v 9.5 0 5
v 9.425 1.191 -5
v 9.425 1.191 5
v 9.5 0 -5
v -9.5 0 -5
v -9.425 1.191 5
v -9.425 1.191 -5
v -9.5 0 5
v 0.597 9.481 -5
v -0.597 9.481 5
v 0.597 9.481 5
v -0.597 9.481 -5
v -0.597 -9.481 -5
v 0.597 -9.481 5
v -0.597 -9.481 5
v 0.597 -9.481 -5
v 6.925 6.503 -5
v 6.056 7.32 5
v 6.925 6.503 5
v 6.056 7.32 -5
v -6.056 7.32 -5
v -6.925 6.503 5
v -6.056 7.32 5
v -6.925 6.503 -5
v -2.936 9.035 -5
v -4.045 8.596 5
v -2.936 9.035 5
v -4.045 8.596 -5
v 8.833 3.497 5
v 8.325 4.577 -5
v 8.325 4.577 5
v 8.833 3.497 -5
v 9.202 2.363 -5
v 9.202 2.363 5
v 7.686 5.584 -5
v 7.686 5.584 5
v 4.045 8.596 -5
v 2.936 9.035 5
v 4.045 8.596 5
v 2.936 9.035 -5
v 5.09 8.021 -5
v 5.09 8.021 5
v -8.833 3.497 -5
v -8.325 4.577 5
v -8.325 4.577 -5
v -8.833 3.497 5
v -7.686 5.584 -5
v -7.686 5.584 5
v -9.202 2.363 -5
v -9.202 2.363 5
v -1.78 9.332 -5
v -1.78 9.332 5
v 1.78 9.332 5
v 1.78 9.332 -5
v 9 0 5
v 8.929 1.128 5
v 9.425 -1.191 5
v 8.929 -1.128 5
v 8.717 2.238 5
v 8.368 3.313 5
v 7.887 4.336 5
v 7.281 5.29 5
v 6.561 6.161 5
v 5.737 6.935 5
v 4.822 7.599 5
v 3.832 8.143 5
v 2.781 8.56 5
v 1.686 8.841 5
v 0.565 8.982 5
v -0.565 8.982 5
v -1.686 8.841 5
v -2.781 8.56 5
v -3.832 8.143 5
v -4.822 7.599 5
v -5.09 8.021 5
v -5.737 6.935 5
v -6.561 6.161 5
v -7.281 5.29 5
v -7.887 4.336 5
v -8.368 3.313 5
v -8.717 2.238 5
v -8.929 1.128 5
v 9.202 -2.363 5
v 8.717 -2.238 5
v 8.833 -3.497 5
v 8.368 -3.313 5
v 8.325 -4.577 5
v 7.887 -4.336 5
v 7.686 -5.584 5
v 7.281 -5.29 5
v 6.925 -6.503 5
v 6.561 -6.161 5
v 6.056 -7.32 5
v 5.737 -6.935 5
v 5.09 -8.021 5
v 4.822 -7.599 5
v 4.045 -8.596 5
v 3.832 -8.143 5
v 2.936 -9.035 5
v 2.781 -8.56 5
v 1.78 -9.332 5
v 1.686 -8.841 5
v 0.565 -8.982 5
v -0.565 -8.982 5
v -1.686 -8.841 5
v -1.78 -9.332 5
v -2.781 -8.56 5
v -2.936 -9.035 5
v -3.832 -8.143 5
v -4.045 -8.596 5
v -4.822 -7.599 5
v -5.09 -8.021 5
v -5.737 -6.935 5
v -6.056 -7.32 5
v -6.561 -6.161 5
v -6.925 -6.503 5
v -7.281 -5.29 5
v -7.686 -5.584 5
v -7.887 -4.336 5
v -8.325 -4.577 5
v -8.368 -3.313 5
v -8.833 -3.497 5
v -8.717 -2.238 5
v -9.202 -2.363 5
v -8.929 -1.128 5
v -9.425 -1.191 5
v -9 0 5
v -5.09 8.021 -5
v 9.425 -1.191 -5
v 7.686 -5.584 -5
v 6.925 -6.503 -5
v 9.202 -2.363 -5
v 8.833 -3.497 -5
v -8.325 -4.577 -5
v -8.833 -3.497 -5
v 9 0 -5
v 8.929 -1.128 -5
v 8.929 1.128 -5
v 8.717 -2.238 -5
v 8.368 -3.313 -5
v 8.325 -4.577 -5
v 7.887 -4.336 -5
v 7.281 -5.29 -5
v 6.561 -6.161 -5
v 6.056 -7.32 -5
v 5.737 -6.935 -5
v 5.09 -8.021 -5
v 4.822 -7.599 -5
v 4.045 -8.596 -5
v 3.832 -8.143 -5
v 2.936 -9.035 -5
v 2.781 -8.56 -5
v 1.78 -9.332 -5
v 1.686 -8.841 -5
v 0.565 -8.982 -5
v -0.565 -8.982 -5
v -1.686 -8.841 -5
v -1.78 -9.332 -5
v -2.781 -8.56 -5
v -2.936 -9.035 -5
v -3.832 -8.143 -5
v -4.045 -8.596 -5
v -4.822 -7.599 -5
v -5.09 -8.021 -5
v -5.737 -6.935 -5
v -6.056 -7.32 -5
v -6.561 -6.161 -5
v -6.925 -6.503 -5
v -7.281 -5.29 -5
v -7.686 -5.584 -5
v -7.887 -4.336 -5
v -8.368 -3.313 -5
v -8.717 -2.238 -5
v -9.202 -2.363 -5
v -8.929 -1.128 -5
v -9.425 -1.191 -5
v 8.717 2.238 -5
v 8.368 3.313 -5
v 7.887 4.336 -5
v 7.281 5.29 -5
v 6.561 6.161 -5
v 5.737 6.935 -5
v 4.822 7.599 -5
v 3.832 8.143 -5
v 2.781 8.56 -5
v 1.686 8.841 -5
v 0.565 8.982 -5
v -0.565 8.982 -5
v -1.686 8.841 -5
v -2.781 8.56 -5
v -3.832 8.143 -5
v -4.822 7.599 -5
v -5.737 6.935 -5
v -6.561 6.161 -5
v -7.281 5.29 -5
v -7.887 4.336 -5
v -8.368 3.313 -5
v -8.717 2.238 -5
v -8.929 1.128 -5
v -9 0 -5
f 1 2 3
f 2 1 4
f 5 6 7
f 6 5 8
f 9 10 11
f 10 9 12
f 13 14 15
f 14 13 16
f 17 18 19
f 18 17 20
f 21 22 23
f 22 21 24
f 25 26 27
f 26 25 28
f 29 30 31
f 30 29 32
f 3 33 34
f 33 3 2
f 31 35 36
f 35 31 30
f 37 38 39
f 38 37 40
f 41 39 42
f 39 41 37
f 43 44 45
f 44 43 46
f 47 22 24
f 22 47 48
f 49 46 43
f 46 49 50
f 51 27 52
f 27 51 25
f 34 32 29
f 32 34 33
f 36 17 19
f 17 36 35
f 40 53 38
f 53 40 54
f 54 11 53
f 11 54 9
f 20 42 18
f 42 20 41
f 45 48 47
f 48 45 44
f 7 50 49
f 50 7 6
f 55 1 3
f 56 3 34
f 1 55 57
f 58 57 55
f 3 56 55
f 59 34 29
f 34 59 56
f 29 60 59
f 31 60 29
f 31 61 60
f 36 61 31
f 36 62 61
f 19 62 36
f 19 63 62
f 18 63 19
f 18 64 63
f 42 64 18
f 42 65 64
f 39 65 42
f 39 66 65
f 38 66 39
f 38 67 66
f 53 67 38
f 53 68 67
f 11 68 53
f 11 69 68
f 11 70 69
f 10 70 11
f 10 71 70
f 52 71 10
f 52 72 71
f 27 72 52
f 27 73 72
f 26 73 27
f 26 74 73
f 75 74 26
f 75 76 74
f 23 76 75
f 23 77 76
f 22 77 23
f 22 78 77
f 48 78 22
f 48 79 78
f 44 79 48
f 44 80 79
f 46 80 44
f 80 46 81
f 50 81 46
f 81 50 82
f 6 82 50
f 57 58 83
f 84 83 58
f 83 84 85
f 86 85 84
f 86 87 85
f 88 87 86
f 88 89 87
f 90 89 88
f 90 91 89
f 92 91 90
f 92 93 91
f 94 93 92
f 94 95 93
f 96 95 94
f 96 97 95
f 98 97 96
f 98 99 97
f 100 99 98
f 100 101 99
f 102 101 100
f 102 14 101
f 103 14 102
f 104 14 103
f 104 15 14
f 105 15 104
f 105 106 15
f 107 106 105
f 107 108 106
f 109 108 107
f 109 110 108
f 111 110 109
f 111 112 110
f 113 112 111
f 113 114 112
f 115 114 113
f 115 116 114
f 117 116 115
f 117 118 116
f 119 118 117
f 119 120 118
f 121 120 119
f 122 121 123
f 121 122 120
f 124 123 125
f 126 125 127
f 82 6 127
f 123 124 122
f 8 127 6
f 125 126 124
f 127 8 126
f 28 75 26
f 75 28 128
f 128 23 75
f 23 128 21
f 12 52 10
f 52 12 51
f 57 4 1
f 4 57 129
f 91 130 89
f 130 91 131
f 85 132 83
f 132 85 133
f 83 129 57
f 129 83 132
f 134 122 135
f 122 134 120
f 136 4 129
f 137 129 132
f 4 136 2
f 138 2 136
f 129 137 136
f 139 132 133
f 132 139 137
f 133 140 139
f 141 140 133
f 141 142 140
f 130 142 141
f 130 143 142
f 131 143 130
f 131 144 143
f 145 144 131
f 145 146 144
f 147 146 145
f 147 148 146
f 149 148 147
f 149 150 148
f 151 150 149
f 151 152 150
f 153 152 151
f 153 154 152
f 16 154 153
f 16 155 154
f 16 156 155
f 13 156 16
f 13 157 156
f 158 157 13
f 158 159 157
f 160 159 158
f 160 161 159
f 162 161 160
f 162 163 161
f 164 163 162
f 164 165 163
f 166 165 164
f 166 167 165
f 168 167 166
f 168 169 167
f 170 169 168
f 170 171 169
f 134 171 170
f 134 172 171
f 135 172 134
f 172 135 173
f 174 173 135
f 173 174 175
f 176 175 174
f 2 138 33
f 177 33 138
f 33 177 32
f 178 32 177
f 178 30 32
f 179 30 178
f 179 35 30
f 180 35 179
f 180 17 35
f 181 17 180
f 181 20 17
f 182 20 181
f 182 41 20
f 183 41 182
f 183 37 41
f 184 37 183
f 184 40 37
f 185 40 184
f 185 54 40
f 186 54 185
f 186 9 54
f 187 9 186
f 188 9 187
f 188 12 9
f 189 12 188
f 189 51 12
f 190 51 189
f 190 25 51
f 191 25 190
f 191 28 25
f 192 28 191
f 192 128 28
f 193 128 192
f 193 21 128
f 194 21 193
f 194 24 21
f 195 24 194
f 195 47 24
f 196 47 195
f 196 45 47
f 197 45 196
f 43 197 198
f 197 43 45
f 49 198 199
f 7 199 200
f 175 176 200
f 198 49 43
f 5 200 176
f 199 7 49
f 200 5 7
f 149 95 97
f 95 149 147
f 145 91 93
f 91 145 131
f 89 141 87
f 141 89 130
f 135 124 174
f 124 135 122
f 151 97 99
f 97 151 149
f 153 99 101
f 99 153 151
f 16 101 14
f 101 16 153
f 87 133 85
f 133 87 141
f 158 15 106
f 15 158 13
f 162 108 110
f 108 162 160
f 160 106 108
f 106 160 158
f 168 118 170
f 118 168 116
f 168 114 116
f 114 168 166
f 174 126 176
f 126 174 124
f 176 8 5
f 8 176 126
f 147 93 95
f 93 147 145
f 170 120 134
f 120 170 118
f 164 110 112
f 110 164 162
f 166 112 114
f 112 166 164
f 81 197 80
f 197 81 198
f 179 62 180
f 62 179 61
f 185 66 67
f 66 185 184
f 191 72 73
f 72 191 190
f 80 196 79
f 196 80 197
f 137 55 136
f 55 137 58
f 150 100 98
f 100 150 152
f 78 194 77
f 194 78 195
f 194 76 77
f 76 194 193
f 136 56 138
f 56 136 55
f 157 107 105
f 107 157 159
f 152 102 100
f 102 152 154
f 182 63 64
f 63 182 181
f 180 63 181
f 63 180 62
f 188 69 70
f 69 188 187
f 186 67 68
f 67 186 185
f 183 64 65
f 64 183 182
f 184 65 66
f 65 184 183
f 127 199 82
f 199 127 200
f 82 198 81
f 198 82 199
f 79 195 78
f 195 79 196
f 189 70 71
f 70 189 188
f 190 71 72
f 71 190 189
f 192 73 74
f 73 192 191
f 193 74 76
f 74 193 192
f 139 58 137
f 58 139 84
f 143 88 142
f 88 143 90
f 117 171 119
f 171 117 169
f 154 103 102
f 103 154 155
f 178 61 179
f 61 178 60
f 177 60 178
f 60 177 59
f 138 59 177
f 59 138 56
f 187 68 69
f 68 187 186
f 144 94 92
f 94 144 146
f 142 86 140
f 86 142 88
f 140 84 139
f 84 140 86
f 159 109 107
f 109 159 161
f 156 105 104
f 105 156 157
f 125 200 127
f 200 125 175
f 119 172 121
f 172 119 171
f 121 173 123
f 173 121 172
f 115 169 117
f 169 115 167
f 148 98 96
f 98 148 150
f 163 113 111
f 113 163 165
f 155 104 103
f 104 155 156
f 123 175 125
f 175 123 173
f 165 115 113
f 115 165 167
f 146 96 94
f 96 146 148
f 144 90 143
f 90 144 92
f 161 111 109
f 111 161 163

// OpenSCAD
$fn = 50;


difference() {
	union() {
		translate(v = [0, 0, -5.0000000000]) {
			cylinder(h = 10, r = 9.5000000000);
		}
	}
	union() {
		translate(v = [0, 0, -100.0000000000]) {
			cylinder(h = 200, r = 9);
		}
	}
}
